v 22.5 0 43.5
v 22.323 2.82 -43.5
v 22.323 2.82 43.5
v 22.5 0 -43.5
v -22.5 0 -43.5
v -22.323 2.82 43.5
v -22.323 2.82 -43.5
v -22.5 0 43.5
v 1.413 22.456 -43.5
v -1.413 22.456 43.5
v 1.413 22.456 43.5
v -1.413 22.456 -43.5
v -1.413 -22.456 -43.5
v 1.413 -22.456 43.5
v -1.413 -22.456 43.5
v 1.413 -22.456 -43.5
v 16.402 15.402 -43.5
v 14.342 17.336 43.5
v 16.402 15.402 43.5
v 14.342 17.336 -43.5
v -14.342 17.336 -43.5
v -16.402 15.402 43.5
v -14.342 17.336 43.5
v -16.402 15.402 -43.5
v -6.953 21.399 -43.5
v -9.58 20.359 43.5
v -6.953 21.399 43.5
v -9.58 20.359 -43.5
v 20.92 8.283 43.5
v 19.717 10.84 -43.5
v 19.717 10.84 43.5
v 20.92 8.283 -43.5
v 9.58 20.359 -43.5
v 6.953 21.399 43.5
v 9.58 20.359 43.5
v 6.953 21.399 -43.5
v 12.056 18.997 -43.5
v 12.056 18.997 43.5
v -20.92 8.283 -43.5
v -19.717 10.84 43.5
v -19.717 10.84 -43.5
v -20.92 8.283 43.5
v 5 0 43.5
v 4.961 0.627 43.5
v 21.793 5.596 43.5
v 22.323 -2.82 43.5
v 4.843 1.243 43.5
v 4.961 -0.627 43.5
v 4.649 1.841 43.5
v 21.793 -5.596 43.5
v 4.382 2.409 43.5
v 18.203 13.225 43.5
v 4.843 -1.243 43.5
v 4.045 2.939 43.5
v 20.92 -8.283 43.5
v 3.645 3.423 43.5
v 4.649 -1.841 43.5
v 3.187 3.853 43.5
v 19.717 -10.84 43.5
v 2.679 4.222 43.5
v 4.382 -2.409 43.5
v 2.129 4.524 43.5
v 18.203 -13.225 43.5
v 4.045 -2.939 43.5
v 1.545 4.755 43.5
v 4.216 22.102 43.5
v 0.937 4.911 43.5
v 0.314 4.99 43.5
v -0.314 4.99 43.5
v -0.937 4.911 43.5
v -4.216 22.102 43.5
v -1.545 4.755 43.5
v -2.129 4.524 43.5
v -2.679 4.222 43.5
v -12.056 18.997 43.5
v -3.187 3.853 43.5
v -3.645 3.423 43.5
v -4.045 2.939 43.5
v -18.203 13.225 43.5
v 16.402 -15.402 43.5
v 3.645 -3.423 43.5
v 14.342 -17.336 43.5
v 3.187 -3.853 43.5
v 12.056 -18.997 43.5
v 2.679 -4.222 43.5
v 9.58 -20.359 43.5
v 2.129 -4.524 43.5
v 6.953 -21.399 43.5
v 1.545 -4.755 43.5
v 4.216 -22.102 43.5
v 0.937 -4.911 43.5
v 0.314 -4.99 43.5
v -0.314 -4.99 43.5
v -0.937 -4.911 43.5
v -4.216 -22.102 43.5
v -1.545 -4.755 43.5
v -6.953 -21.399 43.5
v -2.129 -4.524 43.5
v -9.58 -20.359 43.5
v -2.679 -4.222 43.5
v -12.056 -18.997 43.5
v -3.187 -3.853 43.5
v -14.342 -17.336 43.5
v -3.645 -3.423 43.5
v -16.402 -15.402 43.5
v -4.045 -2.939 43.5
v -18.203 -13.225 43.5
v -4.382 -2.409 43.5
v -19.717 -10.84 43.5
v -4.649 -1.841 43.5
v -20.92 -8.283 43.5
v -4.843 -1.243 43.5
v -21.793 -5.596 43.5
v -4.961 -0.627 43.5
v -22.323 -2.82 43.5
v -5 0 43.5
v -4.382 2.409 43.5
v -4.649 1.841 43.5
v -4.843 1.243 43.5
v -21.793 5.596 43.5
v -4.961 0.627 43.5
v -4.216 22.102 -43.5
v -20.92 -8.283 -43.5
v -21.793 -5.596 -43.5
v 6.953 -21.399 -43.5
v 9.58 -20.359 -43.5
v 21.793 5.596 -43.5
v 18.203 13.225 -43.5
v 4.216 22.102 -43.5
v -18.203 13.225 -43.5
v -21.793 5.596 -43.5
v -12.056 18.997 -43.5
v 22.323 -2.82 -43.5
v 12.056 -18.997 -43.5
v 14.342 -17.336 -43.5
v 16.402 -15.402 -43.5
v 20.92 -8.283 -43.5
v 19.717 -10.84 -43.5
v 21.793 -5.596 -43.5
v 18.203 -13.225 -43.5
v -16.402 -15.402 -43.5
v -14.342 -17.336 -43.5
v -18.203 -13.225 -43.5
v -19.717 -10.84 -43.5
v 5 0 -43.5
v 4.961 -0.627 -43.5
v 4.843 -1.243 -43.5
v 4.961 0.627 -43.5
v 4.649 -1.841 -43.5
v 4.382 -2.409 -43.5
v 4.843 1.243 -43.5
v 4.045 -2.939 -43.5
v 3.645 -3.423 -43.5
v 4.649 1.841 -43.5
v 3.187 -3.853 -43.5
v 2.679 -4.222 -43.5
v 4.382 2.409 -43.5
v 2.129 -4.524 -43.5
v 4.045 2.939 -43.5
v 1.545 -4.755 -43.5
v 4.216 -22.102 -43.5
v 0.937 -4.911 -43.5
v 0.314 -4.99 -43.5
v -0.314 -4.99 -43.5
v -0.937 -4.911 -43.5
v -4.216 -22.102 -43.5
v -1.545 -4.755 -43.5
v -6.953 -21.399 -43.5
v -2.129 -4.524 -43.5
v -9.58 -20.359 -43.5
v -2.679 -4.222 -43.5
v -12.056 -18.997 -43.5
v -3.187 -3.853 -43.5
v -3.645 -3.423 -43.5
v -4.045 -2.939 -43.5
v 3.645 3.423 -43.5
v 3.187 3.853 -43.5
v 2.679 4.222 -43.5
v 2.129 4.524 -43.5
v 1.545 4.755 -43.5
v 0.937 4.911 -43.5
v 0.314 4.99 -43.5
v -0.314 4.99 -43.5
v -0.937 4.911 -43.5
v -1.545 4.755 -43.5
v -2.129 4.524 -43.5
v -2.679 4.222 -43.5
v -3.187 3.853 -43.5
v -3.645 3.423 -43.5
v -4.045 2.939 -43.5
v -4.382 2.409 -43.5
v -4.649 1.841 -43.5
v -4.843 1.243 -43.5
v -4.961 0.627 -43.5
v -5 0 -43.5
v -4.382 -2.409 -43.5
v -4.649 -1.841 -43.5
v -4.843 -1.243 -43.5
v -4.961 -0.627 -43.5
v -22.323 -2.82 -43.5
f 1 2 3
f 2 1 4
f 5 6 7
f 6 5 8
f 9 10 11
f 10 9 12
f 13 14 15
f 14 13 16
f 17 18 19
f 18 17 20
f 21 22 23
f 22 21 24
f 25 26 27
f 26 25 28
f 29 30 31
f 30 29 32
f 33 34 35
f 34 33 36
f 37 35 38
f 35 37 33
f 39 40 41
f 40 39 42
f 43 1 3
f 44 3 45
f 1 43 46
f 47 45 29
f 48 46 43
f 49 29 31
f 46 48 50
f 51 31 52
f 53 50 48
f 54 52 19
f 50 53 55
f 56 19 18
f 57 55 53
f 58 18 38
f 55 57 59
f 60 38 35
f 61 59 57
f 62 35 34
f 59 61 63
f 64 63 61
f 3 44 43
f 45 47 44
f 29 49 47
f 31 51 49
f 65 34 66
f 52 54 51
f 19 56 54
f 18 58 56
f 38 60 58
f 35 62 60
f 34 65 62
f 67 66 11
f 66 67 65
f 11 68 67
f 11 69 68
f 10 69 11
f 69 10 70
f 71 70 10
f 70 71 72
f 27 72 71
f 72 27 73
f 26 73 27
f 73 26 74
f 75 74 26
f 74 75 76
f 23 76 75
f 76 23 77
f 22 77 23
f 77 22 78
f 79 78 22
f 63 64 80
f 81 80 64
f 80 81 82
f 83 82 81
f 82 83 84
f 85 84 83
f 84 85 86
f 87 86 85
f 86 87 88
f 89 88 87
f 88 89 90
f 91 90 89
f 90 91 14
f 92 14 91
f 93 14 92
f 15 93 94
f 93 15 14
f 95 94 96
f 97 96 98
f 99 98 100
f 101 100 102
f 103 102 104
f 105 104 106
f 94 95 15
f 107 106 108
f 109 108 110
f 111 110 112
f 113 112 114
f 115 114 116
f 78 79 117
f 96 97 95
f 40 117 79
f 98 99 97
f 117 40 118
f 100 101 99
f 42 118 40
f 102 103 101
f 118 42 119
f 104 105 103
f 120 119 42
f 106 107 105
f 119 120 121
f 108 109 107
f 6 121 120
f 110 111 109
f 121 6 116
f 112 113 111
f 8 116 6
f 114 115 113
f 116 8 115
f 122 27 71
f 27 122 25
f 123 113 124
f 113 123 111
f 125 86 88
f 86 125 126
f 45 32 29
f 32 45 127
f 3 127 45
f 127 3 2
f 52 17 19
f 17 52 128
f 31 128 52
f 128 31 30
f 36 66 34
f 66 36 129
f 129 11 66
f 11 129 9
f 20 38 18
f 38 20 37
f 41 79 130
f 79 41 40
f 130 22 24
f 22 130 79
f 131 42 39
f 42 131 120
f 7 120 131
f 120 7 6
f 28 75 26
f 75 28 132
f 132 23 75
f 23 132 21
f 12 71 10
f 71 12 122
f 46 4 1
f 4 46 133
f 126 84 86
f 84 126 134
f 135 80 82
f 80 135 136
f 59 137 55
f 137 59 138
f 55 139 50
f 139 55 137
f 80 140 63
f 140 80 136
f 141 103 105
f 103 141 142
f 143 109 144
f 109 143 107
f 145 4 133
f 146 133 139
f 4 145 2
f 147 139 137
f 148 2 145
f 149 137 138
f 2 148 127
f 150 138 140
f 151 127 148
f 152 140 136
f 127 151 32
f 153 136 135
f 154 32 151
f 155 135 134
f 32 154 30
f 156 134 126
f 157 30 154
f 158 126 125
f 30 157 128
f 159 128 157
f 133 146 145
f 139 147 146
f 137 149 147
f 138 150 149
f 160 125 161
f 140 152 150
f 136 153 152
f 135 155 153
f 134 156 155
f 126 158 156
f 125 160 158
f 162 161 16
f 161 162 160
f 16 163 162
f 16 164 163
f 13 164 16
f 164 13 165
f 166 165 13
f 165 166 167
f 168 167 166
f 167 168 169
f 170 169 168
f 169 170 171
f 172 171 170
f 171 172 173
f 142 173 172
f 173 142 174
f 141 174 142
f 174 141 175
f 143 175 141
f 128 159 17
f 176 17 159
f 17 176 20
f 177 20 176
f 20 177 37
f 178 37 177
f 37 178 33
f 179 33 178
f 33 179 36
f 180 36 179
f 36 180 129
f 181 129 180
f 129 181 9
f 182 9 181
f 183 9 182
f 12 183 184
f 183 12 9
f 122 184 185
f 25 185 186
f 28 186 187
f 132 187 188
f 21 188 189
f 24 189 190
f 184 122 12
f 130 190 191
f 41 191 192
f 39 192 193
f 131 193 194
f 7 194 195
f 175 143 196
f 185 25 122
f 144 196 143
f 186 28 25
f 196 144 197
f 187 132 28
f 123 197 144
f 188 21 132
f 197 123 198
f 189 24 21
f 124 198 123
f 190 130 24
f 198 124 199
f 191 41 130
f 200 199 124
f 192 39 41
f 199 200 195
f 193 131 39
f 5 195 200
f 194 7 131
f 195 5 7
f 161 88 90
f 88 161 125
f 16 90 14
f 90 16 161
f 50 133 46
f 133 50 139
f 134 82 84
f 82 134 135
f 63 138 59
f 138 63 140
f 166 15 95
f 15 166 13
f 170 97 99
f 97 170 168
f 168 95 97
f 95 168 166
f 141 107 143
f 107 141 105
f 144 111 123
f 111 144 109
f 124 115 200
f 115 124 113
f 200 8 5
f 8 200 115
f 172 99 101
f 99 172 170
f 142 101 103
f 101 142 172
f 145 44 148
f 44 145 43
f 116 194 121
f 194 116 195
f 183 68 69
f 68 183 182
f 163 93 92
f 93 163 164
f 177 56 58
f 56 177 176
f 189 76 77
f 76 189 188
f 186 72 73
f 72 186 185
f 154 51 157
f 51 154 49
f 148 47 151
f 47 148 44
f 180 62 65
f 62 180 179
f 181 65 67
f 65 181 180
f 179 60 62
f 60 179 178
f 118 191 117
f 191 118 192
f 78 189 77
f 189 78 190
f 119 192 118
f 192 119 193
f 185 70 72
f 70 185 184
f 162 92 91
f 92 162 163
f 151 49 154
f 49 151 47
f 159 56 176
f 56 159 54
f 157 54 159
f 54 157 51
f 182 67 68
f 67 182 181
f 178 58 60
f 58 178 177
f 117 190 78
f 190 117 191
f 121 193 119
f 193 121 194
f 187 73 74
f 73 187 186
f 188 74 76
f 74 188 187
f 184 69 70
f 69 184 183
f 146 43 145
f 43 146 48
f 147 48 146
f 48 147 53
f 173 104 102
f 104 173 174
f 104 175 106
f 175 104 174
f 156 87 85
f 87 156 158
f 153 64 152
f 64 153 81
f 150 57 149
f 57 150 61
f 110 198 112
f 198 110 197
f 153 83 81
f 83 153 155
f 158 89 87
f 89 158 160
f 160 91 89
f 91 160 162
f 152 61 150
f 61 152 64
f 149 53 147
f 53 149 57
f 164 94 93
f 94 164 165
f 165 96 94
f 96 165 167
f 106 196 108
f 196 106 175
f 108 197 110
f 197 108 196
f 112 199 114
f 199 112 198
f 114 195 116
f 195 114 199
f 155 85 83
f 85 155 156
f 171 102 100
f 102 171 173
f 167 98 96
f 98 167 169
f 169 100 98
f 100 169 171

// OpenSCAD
$fn = 50;


difference() {
	union() {
		translate(v = [0, 0, -43.5000000000]) {
			cylinder(h = 87, r = 22.5000000000);
		}
	}
	union() {
		translate(v = [0, 0, -100.0000000000]) {
			cylinder(h = 200, r = 5);
		}
	}
}
